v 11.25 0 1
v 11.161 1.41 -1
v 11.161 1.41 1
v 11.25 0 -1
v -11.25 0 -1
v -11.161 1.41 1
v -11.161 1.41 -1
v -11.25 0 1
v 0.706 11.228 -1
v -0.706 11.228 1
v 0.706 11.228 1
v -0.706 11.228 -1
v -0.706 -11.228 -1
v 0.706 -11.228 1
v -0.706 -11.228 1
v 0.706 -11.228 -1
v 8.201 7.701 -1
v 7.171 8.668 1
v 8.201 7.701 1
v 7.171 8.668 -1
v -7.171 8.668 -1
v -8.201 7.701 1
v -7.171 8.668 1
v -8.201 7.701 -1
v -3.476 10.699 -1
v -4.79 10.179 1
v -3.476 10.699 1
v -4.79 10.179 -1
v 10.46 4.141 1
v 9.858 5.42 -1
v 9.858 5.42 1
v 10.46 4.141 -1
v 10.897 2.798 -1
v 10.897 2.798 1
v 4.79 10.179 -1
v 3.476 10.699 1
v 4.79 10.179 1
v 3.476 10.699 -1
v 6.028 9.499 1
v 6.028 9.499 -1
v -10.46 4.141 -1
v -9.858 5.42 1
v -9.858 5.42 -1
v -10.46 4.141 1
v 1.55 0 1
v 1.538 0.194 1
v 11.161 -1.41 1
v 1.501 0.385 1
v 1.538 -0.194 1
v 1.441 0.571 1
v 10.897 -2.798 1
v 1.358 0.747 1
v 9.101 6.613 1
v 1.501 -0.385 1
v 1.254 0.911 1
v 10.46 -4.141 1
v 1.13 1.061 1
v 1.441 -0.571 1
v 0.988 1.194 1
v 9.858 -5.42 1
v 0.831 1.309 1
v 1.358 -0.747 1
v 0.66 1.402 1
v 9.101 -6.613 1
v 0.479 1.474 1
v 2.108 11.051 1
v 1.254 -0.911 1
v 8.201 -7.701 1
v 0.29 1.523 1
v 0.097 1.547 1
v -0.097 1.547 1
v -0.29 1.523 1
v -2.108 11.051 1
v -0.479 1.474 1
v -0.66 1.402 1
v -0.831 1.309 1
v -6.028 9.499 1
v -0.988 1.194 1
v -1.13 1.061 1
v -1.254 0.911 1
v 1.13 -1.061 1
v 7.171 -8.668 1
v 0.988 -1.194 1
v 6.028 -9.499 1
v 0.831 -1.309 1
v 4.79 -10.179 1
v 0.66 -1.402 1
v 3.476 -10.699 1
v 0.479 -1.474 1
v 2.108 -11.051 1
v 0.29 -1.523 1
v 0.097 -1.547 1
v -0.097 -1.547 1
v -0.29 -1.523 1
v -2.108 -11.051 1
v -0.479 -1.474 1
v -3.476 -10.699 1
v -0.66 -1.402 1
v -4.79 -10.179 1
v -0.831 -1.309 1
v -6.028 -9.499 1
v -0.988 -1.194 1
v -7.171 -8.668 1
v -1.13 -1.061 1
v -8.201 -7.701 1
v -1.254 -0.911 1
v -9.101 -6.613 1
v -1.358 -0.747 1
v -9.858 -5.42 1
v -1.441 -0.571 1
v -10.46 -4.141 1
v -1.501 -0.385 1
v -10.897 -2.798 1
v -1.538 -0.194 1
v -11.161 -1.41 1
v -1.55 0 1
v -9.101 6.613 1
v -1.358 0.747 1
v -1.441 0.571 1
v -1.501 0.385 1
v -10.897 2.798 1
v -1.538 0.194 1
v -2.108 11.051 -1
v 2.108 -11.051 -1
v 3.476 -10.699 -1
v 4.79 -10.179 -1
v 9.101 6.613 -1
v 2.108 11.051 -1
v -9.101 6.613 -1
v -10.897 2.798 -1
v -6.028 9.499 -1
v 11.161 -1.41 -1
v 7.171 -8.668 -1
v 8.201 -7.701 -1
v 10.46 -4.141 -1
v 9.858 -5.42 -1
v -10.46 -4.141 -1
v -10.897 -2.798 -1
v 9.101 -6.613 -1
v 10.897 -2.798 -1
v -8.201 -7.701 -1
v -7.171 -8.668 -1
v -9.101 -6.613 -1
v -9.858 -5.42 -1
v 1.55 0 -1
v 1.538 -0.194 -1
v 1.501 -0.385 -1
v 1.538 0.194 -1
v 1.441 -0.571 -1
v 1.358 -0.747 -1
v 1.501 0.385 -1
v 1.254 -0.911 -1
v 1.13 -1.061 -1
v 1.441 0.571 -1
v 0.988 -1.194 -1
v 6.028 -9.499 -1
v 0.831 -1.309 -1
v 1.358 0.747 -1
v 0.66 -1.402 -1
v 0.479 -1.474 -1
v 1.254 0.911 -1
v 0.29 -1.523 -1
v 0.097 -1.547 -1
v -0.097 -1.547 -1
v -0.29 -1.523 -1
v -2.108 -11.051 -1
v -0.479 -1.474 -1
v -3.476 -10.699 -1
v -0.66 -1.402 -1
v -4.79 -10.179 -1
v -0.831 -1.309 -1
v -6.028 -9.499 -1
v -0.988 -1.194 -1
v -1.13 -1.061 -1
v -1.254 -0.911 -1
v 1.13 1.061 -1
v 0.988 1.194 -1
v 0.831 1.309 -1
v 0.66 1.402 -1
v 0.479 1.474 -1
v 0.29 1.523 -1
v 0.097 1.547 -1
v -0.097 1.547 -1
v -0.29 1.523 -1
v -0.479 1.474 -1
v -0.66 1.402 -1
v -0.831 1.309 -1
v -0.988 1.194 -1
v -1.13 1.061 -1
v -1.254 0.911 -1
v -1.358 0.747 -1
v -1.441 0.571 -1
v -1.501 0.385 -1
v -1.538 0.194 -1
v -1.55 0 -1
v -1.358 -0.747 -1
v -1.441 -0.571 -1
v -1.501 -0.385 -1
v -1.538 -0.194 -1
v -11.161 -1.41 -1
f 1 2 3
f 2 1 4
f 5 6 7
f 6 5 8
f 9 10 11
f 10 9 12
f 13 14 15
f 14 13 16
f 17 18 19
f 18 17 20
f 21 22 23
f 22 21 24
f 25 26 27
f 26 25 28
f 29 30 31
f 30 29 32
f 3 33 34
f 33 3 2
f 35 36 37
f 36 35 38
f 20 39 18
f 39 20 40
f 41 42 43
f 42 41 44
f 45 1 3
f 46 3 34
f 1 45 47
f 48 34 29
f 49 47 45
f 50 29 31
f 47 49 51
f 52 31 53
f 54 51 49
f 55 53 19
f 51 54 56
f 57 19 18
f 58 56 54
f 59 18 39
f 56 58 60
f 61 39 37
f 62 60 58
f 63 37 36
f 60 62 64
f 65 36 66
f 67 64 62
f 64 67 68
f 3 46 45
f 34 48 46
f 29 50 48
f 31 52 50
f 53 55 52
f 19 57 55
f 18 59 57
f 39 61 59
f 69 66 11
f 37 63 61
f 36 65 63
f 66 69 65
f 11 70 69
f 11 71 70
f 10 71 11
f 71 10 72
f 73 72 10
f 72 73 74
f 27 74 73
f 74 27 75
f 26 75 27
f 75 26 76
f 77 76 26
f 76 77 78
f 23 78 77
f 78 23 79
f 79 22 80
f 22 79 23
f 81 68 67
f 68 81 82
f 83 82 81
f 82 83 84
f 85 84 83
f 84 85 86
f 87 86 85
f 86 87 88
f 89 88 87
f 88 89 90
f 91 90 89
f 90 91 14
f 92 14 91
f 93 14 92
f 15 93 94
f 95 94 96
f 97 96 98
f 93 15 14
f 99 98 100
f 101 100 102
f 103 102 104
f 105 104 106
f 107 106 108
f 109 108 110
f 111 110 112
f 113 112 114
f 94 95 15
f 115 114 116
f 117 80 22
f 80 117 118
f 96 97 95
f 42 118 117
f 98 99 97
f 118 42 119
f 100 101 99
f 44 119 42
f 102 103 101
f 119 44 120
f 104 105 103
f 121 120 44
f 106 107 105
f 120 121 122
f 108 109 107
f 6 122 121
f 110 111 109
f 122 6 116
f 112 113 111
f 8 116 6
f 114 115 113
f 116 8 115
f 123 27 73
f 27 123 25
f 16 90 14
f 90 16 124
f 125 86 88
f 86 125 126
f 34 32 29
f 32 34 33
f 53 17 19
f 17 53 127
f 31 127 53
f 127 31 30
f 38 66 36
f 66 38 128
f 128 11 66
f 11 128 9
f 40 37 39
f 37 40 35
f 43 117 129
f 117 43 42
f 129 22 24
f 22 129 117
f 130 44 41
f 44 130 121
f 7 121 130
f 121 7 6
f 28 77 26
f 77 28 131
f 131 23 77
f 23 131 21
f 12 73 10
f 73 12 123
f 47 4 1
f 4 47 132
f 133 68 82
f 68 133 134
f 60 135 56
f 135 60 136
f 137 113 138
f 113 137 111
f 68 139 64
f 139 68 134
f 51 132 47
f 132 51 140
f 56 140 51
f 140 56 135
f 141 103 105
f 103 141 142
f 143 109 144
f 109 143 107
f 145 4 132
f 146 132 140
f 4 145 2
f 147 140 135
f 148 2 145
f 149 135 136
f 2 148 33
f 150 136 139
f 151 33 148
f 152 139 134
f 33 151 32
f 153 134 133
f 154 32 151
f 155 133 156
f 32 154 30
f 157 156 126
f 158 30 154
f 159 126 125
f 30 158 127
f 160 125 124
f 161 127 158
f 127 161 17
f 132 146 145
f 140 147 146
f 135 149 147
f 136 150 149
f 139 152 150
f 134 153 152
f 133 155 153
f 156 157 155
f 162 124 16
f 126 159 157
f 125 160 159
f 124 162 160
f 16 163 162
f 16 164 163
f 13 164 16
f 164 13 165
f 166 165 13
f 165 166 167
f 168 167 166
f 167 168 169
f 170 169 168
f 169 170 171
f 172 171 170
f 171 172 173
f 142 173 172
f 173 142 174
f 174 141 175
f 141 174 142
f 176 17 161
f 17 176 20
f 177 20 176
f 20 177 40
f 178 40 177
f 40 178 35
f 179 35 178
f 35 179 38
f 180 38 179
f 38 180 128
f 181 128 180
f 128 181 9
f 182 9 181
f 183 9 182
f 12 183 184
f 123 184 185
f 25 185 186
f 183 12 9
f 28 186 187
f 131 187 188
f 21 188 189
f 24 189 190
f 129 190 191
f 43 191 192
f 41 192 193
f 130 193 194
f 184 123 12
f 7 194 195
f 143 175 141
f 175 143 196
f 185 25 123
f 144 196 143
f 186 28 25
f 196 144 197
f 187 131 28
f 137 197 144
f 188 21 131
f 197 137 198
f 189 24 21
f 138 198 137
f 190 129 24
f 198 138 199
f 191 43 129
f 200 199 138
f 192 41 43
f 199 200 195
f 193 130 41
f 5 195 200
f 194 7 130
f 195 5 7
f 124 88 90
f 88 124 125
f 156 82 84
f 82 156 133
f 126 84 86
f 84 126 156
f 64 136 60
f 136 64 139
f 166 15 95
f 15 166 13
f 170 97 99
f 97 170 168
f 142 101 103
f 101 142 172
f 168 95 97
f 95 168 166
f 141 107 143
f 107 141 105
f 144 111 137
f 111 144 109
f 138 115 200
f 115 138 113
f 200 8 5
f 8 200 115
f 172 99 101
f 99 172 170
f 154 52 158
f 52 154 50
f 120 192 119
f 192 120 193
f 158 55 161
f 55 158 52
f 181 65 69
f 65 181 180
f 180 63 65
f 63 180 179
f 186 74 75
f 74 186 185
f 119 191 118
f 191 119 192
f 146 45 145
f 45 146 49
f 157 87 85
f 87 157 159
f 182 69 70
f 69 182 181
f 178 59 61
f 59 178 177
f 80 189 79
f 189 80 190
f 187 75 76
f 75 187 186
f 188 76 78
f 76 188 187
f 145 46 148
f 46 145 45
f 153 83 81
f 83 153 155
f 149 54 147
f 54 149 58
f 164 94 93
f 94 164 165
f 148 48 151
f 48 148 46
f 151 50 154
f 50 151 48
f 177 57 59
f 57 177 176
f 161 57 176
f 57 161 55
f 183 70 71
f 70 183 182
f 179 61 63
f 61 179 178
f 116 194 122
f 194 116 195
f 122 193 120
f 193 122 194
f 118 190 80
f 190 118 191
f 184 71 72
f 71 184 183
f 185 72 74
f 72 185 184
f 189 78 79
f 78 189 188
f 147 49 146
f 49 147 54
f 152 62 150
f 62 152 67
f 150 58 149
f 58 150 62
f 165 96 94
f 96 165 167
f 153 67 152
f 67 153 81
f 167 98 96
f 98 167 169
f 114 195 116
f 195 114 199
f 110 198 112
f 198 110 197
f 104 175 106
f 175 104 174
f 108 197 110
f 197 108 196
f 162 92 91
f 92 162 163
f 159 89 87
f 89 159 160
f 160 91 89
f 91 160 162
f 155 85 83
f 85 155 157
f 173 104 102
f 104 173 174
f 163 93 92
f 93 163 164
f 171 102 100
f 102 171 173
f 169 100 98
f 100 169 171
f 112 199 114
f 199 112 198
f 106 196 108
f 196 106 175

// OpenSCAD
$fn = 50;


difference() {
	union() {
		translate(v = [0, 0, -1.0000000000]) {
			cylinder(h = 2, r = 11.2500000000);
		}
	}
	union() {
		translate(v = [0, 0, -100.0000000000]) {
			cylinder(h = 200, r = 1.5500000000);
		}
	}
}
